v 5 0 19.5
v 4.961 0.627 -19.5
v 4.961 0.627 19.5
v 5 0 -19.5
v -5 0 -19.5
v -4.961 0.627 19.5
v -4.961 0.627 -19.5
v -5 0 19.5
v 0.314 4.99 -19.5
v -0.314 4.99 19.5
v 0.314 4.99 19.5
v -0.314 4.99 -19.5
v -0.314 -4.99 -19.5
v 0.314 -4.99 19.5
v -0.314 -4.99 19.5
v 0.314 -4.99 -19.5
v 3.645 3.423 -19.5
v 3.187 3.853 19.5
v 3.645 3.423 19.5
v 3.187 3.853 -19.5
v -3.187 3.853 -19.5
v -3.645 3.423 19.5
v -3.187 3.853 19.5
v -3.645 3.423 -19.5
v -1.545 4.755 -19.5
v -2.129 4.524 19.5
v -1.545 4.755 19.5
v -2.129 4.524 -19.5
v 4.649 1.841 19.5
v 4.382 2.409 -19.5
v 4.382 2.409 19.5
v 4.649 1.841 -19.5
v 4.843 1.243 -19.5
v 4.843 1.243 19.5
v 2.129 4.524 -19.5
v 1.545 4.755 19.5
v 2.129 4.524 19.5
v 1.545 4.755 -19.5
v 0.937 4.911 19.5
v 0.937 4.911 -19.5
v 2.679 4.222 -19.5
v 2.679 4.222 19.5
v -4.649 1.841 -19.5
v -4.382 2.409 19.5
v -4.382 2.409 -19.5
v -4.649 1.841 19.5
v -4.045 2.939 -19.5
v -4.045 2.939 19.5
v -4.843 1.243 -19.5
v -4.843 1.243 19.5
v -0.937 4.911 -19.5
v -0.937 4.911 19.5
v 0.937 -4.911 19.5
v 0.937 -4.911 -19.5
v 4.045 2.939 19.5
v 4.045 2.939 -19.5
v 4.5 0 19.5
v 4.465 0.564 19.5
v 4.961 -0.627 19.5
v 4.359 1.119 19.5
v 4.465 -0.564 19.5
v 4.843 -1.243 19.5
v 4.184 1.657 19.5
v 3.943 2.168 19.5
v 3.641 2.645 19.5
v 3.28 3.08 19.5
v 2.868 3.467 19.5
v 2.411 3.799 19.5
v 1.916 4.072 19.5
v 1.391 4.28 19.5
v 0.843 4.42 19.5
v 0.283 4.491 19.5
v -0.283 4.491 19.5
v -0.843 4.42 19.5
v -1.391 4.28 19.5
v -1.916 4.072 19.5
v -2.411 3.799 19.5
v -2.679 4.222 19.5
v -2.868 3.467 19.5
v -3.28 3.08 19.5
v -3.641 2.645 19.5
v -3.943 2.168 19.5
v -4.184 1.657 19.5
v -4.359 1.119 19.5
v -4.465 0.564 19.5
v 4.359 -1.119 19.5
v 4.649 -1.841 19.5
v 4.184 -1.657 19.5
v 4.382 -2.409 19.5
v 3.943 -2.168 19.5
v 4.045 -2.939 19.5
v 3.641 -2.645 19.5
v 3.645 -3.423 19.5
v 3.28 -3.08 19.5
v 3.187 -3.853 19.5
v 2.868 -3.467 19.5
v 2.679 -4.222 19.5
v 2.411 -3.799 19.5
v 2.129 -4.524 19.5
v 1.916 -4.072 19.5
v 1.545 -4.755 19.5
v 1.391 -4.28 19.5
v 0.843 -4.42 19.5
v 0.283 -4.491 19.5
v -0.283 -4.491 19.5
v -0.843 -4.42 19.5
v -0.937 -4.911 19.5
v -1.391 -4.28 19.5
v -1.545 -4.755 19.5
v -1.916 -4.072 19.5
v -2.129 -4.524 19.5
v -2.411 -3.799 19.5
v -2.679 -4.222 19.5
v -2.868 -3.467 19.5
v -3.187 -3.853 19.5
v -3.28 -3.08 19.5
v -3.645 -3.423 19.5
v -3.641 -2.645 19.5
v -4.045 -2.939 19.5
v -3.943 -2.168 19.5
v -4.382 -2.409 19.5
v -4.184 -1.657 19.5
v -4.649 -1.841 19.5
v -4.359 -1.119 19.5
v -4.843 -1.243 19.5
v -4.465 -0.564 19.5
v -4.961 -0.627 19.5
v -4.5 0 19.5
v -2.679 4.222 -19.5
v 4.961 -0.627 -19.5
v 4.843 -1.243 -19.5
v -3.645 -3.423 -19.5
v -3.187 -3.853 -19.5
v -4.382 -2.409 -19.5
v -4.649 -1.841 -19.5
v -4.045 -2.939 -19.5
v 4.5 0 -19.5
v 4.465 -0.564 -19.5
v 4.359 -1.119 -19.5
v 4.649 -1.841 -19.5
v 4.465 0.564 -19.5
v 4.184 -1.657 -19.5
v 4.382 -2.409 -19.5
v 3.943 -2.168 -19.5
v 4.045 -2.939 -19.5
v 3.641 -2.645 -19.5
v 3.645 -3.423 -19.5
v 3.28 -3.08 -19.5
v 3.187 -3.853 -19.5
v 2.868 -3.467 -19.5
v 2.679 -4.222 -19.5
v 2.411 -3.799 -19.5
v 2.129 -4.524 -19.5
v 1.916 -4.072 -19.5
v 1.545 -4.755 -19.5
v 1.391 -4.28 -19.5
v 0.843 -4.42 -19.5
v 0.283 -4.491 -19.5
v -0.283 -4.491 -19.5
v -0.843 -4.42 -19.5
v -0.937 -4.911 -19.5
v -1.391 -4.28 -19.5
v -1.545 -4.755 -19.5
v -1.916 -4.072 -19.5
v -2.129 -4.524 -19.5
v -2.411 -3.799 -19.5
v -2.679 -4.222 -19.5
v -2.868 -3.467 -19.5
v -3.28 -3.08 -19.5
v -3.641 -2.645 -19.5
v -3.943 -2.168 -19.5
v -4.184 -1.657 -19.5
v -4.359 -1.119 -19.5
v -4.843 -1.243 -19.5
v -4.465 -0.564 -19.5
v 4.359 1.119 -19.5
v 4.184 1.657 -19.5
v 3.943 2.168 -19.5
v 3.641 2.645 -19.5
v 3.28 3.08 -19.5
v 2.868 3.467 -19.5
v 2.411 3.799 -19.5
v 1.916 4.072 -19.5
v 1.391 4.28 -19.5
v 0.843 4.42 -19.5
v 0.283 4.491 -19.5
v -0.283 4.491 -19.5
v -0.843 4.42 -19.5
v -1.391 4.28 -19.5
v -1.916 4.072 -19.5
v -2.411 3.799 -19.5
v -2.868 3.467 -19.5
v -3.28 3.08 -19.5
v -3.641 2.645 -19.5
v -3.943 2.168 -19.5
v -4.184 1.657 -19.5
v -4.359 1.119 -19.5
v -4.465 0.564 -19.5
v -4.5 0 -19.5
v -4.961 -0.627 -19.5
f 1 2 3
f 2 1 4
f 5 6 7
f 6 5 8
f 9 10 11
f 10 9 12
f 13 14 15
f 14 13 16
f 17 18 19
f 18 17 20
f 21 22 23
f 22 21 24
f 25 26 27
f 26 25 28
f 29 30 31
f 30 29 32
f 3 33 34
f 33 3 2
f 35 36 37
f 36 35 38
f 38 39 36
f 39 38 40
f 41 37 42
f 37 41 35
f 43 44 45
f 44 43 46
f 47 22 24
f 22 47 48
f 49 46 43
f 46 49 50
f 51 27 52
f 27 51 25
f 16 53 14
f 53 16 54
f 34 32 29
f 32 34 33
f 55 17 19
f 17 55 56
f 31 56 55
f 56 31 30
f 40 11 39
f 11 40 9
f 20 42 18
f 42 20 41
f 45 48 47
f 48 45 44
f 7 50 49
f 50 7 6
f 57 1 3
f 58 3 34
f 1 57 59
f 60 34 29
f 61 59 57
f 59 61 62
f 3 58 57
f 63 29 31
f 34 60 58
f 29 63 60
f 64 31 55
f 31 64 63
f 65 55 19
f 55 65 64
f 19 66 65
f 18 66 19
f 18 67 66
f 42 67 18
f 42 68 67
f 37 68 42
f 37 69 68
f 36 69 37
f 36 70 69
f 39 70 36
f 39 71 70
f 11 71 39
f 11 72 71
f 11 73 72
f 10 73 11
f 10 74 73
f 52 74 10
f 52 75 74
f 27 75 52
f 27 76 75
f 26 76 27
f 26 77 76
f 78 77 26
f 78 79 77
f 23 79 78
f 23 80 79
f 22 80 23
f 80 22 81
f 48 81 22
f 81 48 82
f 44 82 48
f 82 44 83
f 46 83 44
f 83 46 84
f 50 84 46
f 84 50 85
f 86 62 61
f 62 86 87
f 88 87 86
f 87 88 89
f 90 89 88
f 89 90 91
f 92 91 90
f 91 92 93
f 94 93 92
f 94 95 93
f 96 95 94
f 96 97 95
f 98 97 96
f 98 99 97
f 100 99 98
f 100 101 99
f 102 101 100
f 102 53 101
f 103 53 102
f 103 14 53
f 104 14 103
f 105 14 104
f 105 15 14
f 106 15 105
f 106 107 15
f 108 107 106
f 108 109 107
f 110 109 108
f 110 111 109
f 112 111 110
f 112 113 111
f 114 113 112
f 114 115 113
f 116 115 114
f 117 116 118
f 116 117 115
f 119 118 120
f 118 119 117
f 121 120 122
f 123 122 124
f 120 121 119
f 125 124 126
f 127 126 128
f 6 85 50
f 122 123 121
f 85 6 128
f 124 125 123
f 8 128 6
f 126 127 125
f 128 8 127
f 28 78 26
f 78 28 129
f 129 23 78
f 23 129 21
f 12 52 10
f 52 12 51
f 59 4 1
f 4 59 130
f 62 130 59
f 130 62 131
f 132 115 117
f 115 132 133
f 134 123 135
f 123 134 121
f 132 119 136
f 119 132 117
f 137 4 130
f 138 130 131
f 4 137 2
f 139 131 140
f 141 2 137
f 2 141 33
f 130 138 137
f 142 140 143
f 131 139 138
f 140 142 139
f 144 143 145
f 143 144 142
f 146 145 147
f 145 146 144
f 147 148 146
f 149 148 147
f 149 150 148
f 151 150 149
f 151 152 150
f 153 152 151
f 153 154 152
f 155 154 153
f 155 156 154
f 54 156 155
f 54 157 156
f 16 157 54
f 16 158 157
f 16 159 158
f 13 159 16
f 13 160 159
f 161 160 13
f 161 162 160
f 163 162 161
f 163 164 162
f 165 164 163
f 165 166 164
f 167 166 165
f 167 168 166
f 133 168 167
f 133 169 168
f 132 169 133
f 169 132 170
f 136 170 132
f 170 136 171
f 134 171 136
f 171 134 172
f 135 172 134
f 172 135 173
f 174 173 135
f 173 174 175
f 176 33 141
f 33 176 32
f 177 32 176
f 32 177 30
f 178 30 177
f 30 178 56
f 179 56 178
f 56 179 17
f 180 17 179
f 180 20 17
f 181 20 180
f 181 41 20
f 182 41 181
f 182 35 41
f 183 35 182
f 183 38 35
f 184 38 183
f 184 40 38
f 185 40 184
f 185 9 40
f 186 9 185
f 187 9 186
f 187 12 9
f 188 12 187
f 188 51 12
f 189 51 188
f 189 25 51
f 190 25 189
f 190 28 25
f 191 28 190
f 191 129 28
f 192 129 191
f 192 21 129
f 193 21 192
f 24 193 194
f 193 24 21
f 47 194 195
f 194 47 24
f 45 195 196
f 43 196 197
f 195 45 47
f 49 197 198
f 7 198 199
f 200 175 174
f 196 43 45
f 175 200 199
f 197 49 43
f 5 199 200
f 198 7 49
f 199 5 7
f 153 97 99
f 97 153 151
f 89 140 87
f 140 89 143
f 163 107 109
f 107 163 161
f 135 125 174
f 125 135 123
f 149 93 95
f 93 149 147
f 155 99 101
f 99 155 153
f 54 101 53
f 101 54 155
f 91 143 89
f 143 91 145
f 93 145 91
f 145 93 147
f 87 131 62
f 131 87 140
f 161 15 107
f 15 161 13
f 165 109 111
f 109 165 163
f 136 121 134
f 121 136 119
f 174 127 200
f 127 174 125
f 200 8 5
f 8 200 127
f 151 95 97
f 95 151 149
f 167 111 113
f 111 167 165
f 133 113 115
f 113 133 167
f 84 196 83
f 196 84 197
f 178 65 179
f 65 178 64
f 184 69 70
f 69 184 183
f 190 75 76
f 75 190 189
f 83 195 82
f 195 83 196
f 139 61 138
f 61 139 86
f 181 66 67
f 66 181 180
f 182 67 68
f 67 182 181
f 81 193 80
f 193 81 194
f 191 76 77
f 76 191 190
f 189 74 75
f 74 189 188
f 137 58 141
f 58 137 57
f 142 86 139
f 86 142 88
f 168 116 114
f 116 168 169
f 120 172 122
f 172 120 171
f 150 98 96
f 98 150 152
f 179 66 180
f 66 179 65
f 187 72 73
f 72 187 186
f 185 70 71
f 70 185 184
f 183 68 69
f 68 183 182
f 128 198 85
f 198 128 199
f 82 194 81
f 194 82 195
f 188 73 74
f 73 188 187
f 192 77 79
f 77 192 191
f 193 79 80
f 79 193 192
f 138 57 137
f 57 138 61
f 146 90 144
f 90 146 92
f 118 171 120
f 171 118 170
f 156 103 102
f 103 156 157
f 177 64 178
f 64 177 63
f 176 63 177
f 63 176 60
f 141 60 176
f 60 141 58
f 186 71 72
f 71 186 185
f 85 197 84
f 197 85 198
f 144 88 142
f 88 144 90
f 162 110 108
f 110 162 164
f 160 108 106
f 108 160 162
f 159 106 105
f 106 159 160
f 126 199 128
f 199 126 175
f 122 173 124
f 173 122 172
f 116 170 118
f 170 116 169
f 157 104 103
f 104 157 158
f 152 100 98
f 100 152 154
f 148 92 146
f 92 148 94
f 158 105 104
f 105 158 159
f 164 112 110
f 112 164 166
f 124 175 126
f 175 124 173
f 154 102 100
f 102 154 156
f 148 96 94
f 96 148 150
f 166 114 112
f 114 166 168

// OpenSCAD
$fn = 50;


difference() {
	union() {
		translate(v = [0, 0, -19.5000000000]) {
			cylinder(h = 39, r = 5.0000000000);
		}
	}
	union() {
		translate(v = [0, 0, -100.0000000000]) {
			cylinder(h = 200, r = 4.5000000000);
		}
	}
}
